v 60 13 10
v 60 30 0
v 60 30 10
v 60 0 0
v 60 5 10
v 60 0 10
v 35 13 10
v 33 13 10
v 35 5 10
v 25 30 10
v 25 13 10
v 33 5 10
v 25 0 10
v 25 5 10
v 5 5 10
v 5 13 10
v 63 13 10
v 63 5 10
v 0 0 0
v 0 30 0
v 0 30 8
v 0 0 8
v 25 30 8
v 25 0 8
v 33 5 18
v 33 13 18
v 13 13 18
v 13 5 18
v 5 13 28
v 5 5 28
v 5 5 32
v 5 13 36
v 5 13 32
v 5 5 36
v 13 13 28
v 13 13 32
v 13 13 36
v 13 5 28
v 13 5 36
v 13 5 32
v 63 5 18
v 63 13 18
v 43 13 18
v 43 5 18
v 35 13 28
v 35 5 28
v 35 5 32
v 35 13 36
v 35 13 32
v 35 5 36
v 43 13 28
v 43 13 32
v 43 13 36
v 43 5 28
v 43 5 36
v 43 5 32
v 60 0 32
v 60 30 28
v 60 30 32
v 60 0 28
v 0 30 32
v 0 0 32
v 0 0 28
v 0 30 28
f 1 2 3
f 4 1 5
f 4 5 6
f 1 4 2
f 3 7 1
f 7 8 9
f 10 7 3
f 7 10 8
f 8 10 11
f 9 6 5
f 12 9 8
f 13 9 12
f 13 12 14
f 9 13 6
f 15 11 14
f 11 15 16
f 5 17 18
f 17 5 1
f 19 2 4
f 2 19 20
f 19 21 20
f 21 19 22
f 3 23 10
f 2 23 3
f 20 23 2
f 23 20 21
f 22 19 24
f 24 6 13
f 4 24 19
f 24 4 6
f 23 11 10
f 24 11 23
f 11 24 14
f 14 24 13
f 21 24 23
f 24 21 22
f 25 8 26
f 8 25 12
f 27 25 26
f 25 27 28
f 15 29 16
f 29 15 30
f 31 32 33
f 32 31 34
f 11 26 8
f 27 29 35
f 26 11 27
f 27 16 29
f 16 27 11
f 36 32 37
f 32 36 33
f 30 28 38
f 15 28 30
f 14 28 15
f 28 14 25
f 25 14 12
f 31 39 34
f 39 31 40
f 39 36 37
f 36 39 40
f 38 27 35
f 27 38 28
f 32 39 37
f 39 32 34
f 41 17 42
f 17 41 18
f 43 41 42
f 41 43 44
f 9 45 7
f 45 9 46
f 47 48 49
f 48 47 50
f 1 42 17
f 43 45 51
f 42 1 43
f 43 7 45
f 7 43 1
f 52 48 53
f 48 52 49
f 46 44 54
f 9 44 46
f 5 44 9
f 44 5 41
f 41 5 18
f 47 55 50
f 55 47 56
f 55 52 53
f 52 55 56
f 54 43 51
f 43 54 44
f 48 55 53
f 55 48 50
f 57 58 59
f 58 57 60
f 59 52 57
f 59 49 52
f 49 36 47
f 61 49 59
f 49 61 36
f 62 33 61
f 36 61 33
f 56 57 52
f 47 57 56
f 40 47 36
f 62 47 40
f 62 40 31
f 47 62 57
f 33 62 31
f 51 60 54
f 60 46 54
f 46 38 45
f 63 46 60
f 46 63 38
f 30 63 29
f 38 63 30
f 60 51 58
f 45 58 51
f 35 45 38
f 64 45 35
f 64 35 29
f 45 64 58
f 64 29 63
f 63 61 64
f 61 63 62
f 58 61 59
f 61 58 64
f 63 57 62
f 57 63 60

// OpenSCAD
// Base Block
module base_block() {
    difference() {
        cube([60, 30, 10]); // Main block
        translate([0, 0, 8]) cube([25, 30, 8]); // Adjusted stepped cutout (reduced size and depth)
    }
}

// L-Shaped Connector
module l_shaped_connector() {
    union() {
        cube([28, 8, 8]); // Adjusted horizontal base (narrower base)
        translate([0, 0, 8]) cube([8, 8, 18]); // Adjusted vertical extension (reduced thickness)
    }
}

// Flat Rectangular Block
module flat_rectangular_block() {
    cube([60, 30, 4]); // Adjusted flat block (reduced thickness)
}

// Assembly
module assembly() {
    // Layer 3: Base Block
    base_block();

    // Layer 2: L-Shaped Connectors
    translate([5, 5, 10]) l_shaped_connector(); // Left connector
    translate([35, 5, 10]) l_shaped_connector(); // Right connector

    // Layer 1: Flat Rectangular Block
    translate([0, 0, 28]) flat_rectangular_block(); // Adjusted height to match changes
}

// Render the assembly
assembly();
